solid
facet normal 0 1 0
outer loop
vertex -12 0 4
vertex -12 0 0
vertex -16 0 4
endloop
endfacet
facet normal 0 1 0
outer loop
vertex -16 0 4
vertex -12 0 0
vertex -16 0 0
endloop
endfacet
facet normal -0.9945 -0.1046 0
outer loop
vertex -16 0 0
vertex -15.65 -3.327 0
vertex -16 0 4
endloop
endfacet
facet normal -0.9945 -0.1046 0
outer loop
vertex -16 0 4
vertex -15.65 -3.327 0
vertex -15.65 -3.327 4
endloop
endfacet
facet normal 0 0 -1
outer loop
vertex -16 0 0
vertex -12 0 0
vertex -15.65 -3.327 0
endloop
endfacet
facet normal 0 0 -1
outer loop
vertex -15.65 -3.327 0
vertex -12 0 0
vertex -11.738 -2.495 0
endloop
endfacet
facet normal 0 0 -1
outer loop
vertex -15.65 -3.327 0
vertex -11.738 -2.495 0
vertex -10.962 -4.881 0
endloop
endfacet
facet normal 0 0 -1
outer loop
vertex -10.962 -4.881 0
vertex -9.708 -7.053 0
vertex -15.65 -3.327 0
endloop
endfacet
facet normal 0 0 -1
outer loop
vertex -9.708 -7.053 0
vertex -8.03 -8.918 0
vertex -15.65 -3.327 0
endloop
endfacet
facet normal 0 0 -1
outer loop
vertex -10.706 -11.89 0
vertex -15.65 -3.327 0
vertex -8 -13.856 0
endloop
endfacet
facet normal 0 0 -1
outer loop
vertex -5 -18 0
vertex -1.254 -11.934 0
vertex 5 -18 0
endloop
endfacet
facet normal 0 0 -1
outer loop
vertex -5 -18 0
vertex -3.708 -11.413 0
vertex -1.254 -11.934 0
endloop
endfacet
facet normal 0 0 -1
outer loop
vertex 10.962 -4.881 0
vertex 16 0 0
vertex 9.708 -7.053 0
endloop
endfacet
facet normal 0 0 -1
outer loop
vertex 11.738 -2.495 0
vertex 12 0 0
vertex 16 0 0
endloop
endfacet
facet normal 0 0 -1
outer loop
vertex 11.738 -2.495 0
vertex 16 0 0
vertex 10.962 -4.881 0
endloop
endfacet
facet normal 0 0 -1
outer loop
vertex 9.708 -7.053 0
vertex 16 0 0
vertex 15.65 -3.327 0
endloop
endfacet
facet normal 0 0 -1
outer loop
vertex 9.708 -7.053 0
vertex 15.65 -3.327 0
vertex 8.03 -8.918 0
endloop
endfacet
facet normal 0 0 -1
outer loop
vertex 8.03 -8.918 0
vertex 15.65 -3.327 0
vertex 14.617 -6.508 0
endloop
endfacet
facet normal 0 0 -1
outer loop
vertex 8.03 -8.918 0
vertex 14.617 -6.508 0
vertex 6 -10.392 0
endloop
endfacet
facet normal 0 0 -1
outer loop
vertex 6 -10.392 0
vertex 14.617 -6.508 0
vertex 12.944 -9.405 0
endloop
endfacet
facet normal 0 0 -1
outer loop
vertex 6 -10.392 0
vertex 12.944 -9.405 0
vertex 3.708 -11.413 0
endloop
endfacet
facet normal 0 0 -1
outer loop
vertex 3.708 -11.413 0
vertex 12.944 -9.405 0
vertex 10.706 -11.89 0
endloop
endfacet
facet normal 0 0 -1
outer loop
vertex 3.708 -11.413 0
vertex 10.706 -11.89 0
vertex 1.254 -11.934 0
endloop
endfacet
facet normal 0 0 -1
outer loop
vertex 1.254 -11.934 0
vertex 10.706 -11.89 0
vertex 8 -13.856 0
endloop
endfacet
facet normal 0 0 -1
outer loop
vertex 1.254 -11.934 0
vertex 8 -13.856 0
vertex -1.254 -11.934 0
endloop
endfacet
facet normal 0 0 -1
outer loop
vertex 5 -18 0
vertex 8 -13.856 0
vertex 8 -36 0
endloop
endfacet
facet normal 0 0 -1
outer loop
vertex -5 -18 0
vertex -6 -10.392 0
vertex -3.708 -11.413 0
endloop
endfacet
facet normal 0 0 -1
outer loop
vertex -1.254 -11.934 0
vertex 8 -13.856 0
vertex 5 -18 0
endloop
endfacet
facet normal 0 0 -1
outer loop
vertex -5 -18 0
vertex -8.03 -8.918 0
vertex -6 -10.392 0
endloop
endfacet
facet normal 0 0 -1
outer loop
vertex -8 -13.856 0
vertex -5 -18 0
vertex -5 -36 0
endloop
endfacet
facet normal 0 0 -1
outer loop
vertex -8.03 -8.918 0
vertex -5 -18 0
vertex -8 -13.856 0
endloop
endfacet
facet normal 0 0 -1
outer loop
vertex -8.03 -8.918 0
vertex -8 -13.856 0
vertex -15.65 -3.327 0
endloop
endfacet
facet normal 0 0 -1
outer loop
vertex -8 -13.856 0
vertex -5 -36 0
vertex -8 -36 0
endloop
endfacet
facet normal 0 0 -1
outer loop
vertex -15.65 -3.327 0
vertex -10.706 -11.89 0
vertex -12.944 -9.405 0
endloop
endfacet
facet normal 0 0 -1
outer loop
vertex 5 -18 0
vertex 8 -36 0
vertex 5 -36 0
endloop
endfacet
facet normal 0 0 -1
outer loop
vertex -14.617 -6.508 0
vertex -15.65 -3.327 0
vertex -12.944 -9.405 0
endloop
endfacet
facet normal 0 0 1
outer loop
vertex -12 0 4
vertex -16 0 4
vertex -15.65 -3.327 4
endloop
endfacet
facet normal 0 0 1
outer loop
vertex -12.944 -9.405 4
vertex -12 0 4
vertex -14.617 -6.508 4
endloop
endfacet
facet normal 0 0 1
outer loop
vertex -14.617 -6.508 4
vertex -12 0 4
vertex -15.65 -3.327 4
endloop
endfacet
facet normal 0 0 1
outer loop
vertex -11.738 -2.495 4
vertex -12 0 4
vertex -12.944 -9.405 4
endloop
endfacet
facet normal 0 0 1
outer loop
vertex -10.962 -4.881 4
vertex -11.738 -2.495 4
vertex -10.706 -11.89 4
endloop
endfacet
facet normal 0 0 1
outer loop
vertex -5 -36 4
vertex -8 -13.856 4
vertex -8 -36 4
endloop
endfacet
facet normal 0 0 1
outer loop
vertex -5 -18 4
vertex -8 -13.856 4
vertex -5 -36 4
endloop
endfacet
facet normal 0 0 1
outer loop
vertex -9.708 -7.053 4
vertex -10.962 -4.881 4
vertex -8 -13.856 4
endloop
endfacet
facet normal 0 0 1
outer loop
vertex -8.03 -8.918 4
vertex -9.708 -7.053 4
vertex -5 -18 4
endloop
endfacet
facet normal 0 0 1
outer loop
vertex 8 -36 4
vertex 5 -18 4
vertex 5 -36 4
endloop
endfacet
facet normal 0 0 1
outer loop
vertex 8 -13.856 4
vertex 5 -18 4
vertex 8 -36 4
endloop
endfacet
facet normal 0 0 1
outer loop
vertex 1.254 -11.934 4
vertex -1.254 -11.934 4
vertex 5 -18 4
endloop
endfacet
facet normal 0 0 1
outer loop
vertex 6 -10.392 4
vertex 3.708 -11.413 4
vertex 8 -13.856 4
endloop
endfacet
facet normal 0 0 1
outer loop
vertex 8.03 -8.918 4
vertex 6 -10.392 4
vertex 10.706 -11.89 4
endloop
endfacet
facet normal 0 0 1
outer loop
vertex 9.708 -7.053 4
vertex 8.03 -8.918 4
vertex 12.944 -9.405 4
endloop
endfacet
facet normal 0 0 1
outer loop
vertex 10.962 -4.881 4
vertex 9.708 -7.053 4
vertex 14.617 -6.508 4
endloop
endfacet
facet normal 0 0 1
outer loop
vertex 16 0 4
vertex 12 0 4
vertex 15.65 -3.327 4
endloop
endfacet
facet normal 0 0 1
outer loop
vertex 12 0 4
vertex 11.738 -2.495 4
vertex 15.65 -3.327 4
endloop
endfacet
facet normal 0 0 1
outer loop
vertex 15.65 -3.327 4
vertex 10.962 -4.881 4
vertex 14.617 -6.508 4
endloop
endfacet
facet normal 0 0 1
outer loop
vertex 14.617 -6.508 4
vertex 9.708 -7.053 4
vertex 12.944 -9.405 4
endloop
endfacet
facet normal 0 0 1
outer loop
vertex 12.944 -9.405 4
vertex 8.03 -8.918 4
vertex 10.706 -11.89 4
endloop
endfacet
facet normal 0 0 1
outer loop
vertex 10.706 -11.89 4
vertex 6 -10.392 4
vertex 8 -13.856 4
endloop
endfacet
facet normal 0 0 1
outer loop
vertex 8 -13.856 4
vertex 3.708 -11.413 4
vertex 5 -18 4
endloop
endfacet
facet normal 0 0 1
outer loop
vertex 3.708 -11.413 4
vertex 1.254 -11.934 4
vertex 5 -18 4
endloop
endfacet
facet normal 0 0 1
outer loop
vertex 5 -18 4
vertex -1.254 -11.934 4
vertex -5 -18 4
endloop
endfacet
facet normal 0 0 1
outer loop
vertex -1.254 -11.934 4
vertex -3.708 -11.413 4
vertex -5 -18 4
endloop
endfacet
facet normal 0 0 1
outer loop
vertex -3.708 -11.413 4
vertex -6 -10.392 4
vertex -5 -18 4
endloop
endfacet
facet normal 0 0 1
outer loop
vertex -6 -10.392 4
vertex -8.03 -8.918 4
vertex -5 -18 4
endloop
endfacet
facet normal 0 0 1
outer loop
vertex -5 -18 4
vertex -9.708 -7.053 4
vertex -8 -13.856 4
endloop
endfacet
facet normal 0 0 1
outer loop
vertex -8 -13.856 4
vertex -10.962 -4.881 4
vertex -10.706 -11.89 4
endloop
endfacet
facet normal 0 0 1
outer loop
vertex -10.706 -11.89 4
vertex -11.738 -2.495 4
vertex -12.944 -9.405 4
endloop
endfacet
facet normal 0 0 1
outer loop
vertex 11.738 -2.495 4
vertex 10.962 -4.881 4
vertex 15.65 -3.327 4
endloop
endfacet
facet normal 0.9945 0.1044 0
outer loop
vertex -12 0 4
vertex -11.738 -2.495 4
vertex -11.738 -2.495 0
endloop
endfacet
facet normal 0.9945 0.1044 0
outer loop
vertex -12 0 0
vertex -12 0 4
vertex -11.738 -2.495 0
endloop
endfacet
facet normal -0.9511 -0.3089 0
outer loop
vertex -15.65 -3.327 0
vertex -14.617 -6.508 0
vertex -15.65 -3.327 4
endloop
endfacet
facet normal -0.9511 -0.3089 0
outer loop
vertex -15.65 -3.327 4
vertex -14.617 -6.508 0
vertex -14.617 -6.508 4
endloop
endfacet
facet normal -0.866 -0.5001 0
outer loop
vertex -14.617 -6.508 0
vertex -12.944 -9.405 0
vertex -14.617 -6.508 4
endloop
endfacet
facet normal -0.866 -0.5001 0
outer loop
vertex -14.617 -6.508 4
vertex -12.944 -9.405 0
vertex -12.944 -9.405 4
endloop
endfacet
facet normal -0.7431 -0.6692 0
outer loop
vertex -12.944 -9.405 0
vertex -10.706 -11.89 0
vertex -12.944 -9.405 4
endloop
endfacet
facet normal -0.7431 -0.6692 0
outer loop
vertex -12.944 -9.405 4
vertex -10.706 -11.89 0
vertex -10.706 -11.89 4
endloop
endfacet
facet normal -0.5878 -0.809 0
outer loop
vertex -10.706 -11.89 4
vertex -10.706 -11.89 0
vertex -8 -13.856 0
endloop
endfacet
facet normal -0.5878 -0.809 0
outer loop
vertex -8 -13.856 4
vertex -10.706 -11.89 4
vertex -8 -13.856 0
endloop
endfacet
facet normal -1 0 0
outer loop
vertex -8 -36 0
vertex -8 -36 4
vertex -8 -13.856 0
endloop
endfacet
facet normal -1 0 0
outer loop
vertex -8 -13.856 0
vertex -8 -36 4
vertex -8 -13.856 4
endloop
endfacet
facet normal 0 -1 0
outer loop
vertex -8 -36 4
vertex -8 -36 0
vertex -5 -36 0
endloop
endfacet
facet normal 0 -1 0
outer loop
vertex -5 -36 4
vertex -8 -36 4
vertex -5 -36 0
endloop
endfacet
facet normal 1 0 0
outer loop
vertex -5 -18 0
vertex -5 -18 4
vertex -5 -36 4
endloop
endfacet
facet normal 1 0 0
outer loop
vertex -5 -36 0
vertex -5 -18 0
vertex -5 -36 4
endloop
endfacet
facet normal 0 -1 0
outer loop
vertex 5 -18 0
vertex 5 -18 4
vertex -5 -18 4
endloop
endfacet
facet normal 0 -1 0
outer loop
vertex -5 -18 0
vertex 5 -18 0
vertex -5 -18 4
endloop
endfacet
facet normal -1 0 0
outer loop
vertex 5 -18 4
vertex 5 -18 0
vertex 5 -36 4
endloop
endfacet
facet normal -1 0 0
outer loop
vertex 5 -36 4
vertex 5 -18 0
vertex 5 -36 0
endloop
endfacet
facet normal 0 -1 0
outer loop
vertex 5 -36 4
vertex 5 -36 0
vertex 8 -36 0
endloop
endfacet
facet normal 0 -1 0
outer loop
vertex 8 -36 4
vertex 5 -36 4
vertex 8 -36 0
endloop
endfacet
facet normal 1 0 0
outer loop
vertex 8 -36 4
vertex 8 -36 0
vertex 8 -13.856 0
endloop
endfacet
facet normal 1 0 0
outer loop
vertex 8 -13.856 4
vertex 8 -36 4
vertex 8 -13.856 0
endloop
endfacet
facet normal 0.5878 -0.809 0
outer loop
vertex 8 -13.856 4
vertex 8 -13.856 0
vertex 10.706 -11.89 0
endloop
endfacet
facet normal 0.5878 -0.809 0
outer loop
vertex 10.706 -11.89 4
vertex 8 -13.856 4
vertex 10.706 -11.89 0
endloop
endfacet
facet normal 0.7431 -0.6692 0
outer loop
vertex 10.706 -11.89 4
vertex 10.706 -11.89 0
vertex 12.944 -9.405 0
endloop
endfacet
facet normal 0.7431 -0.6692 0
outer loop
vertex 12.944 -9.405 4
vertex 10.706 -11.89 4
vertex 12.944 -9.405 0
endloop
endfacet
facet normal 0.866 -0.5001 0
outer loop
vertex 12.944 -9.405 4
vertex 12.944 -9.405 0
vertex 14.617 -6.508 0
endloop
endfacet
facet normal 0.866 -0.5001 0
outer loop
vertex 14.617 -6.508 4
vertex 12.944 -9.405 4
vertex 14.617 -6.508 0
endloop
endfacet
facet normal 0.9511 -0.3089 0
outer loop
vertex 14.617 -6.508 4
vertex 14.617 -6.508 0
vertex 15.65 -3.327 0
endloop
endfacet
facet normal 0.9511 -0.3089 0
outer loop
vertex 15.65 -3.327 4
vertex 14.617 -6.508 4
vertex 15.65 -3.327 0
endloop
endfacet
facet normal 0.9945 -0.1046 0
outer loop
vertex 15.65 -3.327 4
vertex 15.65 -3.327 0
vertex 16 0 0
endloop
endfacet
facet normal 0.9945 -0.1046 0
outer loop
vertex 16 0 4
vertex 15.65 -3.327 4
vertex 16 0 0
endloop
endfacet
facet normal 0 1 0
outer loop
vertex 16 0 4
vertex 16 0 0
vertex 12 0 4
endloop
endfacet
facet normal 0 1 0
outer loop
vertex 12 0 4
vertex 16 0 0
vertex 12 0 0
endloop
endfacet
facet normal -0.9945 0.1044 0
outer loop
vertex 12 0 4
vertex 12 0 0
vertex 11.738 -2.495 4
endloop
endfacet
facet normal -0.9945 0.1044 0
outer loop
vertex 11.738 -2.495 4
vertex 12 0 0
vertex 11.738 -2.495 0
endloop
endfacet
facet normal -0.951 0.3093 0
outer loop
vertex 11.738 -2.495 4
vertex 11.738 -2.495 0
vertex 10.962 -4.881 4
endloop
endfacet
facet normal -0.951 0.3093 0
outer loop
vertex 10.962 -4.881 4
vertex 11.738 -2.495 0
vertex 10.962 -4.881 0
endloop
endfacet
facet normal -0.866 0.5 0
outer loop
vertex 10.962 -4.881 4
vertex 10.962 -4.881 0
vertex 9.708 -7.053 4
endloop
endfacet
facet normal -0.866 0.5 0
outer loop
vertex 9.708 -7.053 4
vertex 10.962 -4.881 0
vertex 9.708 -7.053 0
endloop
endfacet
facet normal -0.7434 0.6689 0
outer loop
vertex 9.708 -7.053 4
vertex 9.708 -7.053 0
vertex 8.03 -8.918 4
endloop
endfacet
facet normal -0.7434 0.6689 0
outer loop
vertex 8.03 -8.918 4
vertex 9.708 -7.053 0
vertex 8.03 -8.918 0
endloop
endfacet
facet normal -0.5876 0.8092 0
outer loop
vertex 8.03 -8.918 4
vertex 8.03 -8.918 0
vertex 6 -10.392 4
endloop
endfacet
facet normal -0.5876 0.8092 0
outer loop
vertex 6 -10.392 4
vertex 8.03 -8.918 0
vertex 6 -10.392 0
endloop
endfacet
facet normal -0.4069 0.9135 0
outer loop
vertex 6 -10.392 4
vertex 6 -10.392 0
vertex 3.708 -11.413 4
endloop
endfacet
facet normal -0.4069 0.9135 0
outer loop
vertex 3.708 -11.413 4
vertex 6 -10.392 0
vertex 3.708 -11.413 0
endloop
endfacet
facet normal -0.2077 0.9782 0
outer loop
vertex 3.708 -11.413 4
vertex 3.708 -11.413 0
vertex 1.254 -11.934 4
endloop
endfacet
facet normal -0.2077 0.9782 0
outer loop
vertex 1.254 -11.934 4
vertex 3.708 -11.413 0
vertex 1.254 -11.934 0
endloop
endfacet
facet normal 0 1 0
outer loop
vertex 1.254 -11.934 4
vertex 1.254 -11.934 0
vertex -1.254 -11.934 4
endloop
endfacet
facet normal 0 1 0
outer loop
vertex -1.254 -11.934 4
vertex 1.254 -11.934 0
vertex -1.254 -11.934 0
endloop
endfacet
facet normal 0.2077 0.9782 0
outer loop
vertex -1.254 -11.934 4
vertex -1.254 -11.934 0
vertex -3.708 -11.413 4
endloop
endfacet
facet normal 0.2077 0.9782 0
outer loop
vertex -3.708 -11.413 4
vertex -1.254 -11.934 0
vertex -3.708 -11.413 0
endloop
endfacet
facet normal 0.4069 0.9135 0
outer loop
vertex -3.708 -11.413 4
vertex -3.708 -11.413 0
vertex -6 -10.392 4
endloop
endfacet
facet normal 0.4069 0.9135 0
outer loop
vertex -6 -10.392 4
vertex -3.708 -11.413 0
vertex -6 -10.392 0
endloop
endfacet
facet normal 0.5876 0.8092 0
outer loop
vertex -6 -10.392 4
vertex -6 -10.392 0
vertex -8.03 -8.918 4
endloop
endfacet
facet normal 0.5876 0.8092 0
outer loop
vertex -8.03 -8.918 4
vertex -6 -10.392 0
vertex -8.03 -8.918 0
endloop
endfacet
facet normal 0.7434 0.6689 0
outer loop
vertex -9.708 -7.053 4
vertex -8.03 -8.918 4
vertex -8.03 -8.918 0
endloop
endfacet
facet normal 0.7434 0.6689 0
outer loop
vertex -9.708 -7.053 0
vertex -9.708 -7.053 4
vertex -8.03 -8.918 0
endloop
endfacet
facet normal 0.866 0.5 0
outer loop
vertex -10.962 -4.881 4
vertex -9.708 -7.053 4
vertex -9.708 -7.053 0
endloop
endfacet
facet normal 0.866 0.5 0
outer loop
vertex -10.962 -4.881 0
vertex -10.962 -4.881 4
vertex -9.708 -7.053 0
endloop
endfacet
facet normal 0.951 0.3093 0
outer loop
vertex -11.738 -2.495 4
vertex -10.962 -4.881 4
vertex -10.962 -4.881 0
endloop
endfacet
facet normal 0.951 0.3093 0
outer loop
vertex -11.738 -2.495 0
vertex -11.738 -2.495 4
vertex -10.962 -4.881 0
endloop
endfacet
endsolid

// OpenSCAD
difference()
{
	union()
{
	cylinder(r=16,h=4);
	translate([-8,-36,0])cube([16,36,4]);
}
	translate([-50,0,-1])cube(100);
	translate([0,0,-1])cylinder(r=12,h=10);
	translate([-5,-68,-3])cube([10,50,20]);
}
